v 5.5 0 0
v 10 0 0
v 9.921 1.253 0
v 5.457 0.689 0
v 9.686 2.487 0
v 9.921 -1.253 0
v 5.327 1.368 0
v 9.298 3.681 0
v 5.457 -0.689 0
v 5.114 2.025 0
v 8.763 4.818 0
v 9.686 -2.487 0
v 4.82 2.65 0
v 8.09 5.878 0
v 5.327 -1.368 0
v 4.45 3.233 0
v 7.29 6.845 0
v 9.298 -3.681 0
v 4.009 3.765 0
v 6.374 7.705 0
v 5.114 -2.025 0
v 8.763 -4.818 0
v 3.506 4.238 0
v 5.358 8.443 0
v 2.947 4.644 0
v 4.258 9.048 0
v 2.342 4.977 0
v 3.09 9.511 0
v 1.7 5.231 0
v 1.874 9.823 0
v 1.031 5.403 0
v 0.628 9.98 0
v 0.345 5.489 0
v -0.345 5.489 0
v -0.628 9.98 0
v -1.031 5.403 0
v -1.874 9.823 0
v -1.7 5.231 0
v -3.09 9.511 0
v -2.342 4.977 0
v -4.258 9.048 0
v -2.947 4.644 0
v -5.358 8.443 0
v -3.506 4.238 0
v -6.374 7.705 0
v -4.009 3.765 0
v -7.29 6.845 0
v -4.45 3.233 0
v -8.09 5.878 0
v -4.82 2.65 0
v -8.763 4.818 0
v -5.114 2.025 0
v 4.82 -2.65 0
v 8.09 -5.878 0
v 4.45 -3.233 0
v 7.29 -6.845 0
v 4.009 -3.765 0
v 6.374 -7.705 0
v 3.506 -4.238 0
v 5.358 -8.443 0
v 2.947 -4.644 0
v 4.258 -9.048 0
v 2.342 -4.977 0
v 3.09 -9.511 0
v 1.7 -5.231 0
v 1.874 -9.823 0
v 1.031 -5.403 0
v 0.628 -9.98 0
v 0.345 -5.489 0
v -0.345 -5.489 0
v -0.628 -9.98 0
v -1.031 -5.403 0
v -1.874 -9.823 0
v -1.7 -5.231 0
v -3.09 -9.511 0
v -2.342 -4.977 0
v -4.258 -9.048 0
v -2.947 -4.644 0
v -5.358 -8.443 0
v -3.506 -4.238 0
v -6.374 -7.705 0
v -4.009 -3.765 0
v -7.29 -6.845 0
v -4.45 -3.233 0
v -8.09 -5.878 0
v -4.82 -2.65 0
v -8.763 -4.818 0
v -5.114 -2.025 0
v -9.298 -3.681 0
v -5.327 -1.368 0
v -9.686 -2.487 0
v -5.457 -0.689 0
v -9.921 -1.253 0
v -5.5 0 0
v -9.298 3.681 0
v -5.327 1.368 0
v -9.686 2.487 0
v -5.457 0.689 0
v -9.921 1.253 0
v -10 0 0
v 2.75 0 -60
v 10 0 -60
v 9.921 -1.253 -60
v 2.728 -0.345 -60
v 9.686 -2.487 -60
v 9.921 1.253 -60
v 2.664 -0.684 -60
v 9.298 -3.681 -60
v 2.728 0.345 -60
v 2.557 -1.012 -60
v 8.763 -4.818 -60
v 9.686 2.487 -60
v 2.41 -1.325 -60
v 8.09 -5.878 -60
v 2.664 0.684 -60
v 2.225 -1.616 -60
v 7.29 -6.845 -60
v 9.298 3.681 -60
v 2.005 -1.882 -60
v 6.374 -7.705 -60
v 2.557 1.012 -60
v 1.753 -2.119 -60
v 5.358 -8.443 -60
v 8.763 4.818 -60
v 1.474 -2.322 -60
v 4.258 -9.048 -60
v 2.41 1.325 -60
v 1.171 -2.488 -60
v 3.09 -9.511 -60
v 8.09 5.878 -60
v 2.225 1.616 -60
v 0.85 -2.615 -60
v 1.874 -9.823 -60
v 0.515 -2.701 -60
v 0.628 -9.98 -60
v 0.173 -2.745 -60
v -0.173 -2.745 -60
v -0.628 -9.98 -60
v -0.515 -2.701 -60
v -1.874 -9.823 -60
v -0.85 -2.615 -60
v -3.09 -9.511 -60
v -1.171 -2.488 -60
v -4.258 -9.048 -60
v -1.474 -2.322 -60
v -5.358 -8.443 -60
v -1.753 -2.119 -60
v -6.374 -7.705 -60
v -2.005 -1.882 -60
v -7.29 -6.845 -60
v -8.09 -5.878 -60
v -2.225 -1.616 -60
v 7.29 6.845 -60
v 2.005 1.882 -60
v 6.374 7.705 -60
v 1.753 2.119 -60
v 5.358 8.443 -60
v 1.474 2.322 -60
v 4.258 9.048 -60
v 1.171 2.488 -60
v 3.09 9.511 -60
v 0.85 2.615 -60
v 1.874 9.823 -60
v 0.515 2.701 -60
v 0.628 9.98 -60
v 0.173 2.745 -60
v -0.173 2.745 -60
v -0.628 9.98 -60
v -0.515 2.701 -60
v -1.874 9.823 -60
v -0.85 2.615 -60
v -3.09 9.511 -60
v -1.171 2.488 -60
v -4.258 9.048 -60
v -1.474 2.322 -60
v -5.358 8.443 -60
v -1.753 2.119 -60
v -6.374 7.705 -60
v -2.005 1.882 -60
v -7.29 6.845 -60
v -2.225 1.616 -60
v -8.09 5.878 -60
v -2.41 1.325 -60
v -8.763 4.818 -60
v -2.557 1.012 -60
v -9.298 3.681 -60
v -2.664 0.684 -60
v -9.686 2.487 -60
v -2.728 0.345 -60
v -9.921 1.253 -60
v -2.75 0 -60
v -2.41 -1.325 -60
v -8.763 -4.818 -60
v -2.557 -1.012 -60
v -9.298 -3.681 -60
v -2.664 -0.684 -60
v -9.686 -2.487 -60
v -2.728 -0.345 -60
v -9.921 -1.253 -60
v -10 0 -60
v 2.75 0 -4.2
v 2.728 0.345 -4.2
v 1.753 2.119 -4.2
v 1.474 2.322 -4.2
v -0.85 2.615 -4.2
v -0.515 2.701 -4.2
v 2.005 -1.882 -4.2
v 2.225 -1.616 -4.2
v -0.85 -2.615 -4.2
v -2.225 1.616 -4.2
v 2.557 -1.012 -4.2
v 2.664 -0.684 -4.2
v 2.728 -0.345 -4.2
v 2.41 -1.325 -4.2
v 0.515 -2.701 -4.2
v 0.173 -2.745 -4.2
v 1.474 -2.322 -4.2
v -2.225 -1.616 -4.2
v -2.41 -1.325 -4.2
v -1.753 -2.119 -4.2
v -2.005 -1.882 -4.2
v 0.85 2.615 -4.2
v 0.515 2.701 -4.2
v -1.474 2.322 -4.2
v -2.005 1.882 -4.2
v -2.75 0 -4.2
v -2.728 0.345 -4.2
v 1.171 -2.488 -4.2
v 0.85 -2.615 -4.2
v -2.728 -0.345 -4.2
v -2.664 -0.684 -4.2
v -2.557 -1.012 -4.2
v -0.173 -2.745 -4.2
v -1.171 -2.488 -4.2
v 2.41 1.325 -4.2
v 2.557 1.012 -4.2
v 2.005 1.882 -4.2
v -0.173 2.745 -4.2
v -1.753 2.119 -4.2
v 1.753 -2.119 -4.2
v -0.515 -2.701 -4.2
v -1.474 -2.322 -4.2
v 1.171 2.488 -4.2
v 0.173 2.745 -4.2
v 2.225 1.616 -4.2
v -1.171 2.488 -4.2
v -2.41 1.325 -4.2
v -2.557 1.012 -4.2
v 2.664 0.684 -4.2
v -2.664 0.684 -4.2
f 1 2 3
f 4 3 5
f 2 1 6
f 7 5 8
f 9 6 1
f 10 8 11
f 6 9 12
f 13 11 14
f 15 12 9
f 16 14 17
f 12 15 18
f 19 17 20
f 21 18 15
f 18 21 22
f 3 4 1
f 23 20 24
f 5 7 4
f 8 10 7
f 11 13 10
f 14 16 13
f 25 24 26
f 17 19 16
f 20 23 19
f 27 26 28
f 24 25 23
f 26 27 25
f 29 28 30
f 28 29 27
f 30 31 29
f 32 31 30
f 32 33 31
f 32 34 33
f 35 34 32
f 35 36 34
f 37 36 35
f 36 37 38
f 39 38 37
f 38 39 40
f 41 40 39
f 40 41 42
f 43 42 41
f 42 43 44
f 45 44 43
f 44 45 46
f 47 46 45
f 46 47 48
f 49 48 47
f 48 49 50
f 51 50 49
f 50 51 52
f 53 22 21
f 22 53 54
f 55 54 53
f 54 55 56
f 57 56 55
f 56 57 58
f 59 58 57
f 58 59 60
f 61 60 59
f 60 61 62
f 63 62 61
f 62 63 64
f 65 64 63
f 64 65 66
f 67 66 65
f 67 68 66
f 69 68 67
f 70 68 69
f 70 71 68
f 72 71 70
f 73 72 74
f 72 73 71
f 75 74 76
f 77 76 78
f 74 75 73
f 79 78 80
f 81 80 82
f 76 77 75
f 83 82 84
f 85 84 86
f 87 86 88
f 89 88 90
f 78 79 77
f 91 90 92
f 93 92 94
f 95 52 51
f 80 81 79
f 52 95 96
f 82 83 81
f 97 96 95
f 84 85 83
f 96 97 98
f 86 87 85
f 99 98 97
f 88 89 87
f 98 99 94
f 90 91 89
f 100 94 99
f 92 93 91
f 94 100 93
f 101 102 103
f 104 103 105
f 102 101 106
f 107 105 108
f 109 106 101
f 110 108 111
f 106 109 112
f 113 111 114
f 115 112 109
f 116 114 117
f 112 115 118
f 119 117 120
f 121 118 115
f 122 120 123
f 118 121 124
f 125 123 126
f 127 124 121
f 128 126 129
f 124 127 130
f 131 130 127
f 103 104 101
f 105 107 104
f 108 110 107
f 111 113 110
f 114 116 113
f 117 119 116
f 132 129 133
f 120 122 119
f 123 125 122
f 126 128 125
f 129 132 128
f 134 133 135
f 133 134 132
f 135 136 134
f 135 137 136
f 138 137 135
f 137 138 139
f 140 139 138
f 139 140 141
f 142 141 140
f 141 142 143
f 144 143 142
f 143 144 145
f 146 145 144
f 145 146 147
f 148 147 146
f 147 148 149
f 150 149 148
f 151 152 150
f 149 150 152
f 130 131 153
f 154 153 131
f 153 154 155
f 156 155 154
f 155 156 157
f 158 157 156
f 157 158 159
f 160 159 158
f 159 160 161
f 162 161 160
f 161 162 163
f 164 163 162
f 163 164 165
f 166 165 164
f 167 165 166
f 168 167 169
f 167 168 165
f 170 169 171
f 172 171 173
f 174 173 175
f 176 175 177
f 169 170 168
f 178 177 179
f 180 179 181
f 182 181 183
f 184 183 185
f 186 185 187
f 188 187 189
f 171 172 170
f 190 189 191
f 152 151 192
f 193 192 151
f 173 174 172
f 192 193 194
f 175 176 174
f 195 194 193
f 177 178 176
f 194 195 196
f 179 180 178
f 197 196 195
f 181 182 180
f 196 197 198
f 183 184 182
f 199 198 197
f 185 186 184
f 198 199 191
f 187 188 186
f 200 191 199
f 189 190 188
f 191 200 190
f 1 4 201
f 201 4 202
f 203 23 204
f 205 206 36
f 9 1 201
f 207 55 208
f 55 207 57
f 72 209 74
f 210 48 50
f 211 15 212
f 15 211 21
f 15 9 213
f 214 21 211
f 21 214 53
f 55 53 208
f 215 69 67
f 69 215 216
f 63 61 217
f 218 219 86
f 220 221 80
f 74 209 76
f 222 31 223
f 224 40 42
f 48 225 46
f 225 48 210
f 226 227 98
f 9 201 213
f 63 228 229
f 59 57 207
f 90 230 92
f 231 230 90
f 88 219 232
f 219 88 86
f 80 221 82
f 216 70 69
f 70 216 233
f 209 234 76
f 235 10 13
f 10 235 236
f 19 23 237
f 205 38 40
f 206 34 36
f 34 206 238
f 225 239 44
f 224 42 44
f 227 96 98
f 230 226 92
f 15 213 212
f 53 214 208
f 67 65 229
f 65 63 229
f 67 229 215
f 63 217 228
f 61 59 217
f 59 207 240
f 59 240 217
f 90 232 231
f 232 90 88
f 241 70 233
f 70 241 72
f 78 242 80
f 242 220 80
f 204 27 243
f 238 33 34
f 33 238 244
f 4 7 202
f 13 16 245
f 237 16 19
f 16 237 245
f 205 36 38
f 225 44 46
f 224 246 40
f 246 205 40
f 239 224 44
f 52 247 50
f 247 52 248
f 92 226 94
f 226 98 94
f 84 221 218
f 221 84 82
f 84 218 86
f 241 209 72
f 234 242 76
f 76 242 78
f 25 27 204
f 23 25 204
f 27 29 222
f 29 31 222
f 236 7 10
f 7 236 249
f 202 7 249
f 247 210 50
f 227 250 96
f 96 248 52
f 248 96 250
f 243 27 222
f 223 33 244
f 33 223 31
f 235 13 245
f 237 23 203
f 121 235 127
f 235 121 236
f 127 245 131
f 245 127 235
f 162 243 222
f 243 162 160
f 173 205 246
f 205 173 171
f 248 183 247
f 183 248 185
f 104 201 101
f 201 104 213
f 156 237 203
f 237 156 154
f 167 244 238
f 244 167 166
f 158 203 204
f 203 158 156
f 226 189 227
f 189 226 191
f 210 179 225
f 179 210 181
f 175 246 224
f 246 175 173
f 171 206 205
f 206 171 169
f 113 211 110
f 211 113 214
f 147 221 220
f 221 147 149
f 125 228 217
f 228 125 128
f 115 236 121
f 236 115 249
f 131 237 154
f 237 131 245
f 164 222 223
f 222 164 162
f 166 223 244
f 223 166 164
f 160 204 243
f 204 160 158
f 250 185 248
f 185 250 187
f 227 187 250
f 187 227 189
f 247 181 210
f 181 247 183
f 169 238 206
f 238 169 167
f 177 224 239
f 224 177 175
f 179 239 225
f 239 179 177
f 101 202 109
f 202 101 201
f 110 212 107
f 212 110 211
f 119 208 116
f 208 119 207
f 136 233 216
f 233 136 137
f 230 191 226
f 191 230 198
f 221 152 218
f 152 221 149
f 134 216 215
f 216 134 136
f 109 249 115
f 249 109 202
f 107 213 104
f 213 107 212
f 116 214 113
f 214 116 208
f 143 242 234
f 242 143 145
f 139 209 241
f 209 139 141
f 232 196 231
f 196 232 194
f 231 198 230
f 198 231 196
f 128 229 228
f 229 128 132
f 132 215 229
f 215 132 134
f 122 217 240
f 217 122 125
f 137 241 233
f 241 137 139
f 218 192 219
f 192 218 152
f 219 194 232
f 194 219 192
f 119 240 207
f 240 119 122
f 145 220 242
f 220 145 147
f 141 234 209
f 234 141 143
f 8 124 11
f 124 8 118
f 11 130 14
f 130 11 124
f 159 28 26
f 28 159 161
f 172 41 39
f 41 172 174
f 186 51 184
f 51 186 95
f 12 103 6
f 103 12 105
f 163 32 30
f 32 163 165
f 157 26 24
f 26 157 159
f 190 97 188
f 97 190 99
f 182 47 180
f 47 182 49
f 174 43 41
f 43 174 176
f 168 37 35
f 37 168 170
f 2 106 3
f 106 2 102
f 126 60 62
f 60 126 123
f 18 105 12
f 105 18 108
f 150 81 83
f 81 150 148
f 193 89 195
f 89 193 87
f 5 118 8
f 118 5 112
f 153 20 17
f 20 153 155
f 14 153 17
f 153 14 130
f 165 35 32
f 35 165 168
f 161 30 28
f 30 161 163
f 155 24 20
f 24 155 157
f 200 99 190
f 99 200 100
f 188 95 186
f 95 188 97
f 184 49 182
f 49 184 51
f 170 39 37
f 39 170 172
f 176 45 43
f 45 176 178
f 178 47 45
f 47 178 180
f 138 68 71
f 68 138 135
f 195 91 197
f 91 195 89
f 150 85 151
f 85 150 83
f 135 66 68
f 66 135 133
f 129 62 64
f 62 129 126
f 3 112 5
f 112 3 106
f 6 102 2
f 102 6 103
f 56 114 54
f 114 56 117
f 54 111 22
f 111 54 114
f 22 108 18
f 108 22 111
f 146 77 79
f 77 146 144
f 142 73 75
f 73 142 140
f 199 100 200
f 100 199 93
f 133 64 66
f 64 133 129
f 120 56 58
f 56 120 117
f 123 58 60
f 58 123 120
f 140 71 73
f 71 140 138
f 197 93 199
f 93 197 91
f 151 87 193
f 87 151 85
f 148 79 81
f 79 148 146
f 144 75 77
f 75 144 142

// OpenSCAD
$fn = 50;


difference() {
	union() {
		translate(v = [0, 0, -60.0000000000]) {
			cylinder(h = 60, r = 10.0000000000);
		}
		cylinder(h = 0, r = 16.0000000000);
	}
	union() {
		translate(v = [0, 0, 0]) {
			rotate(a = [0, 0, 0]) {
				difference() {
					union() {
						#translate(v = [0, 0, -60.0000000000]) {
							cylinder(h = 60, r = 2.2500000000);
						}
						#translate(v = [0, 0, -4.2000000000]) {
							cylinder(h = 4.2000000000, r1 = 2.7500000000, r2 = 5.5000000000);
						}
						#translate(v = [0, 0, -60.0000000000]) {
							cylinder(h = 60, r = 2.7500000000);
						}
						#translate(v = [0, 0, -60.0000000000]) {
							cylinder(h = 60, r = 2.2500000000);
						}
					}
					union();
				}
			}
		}
	}
}
